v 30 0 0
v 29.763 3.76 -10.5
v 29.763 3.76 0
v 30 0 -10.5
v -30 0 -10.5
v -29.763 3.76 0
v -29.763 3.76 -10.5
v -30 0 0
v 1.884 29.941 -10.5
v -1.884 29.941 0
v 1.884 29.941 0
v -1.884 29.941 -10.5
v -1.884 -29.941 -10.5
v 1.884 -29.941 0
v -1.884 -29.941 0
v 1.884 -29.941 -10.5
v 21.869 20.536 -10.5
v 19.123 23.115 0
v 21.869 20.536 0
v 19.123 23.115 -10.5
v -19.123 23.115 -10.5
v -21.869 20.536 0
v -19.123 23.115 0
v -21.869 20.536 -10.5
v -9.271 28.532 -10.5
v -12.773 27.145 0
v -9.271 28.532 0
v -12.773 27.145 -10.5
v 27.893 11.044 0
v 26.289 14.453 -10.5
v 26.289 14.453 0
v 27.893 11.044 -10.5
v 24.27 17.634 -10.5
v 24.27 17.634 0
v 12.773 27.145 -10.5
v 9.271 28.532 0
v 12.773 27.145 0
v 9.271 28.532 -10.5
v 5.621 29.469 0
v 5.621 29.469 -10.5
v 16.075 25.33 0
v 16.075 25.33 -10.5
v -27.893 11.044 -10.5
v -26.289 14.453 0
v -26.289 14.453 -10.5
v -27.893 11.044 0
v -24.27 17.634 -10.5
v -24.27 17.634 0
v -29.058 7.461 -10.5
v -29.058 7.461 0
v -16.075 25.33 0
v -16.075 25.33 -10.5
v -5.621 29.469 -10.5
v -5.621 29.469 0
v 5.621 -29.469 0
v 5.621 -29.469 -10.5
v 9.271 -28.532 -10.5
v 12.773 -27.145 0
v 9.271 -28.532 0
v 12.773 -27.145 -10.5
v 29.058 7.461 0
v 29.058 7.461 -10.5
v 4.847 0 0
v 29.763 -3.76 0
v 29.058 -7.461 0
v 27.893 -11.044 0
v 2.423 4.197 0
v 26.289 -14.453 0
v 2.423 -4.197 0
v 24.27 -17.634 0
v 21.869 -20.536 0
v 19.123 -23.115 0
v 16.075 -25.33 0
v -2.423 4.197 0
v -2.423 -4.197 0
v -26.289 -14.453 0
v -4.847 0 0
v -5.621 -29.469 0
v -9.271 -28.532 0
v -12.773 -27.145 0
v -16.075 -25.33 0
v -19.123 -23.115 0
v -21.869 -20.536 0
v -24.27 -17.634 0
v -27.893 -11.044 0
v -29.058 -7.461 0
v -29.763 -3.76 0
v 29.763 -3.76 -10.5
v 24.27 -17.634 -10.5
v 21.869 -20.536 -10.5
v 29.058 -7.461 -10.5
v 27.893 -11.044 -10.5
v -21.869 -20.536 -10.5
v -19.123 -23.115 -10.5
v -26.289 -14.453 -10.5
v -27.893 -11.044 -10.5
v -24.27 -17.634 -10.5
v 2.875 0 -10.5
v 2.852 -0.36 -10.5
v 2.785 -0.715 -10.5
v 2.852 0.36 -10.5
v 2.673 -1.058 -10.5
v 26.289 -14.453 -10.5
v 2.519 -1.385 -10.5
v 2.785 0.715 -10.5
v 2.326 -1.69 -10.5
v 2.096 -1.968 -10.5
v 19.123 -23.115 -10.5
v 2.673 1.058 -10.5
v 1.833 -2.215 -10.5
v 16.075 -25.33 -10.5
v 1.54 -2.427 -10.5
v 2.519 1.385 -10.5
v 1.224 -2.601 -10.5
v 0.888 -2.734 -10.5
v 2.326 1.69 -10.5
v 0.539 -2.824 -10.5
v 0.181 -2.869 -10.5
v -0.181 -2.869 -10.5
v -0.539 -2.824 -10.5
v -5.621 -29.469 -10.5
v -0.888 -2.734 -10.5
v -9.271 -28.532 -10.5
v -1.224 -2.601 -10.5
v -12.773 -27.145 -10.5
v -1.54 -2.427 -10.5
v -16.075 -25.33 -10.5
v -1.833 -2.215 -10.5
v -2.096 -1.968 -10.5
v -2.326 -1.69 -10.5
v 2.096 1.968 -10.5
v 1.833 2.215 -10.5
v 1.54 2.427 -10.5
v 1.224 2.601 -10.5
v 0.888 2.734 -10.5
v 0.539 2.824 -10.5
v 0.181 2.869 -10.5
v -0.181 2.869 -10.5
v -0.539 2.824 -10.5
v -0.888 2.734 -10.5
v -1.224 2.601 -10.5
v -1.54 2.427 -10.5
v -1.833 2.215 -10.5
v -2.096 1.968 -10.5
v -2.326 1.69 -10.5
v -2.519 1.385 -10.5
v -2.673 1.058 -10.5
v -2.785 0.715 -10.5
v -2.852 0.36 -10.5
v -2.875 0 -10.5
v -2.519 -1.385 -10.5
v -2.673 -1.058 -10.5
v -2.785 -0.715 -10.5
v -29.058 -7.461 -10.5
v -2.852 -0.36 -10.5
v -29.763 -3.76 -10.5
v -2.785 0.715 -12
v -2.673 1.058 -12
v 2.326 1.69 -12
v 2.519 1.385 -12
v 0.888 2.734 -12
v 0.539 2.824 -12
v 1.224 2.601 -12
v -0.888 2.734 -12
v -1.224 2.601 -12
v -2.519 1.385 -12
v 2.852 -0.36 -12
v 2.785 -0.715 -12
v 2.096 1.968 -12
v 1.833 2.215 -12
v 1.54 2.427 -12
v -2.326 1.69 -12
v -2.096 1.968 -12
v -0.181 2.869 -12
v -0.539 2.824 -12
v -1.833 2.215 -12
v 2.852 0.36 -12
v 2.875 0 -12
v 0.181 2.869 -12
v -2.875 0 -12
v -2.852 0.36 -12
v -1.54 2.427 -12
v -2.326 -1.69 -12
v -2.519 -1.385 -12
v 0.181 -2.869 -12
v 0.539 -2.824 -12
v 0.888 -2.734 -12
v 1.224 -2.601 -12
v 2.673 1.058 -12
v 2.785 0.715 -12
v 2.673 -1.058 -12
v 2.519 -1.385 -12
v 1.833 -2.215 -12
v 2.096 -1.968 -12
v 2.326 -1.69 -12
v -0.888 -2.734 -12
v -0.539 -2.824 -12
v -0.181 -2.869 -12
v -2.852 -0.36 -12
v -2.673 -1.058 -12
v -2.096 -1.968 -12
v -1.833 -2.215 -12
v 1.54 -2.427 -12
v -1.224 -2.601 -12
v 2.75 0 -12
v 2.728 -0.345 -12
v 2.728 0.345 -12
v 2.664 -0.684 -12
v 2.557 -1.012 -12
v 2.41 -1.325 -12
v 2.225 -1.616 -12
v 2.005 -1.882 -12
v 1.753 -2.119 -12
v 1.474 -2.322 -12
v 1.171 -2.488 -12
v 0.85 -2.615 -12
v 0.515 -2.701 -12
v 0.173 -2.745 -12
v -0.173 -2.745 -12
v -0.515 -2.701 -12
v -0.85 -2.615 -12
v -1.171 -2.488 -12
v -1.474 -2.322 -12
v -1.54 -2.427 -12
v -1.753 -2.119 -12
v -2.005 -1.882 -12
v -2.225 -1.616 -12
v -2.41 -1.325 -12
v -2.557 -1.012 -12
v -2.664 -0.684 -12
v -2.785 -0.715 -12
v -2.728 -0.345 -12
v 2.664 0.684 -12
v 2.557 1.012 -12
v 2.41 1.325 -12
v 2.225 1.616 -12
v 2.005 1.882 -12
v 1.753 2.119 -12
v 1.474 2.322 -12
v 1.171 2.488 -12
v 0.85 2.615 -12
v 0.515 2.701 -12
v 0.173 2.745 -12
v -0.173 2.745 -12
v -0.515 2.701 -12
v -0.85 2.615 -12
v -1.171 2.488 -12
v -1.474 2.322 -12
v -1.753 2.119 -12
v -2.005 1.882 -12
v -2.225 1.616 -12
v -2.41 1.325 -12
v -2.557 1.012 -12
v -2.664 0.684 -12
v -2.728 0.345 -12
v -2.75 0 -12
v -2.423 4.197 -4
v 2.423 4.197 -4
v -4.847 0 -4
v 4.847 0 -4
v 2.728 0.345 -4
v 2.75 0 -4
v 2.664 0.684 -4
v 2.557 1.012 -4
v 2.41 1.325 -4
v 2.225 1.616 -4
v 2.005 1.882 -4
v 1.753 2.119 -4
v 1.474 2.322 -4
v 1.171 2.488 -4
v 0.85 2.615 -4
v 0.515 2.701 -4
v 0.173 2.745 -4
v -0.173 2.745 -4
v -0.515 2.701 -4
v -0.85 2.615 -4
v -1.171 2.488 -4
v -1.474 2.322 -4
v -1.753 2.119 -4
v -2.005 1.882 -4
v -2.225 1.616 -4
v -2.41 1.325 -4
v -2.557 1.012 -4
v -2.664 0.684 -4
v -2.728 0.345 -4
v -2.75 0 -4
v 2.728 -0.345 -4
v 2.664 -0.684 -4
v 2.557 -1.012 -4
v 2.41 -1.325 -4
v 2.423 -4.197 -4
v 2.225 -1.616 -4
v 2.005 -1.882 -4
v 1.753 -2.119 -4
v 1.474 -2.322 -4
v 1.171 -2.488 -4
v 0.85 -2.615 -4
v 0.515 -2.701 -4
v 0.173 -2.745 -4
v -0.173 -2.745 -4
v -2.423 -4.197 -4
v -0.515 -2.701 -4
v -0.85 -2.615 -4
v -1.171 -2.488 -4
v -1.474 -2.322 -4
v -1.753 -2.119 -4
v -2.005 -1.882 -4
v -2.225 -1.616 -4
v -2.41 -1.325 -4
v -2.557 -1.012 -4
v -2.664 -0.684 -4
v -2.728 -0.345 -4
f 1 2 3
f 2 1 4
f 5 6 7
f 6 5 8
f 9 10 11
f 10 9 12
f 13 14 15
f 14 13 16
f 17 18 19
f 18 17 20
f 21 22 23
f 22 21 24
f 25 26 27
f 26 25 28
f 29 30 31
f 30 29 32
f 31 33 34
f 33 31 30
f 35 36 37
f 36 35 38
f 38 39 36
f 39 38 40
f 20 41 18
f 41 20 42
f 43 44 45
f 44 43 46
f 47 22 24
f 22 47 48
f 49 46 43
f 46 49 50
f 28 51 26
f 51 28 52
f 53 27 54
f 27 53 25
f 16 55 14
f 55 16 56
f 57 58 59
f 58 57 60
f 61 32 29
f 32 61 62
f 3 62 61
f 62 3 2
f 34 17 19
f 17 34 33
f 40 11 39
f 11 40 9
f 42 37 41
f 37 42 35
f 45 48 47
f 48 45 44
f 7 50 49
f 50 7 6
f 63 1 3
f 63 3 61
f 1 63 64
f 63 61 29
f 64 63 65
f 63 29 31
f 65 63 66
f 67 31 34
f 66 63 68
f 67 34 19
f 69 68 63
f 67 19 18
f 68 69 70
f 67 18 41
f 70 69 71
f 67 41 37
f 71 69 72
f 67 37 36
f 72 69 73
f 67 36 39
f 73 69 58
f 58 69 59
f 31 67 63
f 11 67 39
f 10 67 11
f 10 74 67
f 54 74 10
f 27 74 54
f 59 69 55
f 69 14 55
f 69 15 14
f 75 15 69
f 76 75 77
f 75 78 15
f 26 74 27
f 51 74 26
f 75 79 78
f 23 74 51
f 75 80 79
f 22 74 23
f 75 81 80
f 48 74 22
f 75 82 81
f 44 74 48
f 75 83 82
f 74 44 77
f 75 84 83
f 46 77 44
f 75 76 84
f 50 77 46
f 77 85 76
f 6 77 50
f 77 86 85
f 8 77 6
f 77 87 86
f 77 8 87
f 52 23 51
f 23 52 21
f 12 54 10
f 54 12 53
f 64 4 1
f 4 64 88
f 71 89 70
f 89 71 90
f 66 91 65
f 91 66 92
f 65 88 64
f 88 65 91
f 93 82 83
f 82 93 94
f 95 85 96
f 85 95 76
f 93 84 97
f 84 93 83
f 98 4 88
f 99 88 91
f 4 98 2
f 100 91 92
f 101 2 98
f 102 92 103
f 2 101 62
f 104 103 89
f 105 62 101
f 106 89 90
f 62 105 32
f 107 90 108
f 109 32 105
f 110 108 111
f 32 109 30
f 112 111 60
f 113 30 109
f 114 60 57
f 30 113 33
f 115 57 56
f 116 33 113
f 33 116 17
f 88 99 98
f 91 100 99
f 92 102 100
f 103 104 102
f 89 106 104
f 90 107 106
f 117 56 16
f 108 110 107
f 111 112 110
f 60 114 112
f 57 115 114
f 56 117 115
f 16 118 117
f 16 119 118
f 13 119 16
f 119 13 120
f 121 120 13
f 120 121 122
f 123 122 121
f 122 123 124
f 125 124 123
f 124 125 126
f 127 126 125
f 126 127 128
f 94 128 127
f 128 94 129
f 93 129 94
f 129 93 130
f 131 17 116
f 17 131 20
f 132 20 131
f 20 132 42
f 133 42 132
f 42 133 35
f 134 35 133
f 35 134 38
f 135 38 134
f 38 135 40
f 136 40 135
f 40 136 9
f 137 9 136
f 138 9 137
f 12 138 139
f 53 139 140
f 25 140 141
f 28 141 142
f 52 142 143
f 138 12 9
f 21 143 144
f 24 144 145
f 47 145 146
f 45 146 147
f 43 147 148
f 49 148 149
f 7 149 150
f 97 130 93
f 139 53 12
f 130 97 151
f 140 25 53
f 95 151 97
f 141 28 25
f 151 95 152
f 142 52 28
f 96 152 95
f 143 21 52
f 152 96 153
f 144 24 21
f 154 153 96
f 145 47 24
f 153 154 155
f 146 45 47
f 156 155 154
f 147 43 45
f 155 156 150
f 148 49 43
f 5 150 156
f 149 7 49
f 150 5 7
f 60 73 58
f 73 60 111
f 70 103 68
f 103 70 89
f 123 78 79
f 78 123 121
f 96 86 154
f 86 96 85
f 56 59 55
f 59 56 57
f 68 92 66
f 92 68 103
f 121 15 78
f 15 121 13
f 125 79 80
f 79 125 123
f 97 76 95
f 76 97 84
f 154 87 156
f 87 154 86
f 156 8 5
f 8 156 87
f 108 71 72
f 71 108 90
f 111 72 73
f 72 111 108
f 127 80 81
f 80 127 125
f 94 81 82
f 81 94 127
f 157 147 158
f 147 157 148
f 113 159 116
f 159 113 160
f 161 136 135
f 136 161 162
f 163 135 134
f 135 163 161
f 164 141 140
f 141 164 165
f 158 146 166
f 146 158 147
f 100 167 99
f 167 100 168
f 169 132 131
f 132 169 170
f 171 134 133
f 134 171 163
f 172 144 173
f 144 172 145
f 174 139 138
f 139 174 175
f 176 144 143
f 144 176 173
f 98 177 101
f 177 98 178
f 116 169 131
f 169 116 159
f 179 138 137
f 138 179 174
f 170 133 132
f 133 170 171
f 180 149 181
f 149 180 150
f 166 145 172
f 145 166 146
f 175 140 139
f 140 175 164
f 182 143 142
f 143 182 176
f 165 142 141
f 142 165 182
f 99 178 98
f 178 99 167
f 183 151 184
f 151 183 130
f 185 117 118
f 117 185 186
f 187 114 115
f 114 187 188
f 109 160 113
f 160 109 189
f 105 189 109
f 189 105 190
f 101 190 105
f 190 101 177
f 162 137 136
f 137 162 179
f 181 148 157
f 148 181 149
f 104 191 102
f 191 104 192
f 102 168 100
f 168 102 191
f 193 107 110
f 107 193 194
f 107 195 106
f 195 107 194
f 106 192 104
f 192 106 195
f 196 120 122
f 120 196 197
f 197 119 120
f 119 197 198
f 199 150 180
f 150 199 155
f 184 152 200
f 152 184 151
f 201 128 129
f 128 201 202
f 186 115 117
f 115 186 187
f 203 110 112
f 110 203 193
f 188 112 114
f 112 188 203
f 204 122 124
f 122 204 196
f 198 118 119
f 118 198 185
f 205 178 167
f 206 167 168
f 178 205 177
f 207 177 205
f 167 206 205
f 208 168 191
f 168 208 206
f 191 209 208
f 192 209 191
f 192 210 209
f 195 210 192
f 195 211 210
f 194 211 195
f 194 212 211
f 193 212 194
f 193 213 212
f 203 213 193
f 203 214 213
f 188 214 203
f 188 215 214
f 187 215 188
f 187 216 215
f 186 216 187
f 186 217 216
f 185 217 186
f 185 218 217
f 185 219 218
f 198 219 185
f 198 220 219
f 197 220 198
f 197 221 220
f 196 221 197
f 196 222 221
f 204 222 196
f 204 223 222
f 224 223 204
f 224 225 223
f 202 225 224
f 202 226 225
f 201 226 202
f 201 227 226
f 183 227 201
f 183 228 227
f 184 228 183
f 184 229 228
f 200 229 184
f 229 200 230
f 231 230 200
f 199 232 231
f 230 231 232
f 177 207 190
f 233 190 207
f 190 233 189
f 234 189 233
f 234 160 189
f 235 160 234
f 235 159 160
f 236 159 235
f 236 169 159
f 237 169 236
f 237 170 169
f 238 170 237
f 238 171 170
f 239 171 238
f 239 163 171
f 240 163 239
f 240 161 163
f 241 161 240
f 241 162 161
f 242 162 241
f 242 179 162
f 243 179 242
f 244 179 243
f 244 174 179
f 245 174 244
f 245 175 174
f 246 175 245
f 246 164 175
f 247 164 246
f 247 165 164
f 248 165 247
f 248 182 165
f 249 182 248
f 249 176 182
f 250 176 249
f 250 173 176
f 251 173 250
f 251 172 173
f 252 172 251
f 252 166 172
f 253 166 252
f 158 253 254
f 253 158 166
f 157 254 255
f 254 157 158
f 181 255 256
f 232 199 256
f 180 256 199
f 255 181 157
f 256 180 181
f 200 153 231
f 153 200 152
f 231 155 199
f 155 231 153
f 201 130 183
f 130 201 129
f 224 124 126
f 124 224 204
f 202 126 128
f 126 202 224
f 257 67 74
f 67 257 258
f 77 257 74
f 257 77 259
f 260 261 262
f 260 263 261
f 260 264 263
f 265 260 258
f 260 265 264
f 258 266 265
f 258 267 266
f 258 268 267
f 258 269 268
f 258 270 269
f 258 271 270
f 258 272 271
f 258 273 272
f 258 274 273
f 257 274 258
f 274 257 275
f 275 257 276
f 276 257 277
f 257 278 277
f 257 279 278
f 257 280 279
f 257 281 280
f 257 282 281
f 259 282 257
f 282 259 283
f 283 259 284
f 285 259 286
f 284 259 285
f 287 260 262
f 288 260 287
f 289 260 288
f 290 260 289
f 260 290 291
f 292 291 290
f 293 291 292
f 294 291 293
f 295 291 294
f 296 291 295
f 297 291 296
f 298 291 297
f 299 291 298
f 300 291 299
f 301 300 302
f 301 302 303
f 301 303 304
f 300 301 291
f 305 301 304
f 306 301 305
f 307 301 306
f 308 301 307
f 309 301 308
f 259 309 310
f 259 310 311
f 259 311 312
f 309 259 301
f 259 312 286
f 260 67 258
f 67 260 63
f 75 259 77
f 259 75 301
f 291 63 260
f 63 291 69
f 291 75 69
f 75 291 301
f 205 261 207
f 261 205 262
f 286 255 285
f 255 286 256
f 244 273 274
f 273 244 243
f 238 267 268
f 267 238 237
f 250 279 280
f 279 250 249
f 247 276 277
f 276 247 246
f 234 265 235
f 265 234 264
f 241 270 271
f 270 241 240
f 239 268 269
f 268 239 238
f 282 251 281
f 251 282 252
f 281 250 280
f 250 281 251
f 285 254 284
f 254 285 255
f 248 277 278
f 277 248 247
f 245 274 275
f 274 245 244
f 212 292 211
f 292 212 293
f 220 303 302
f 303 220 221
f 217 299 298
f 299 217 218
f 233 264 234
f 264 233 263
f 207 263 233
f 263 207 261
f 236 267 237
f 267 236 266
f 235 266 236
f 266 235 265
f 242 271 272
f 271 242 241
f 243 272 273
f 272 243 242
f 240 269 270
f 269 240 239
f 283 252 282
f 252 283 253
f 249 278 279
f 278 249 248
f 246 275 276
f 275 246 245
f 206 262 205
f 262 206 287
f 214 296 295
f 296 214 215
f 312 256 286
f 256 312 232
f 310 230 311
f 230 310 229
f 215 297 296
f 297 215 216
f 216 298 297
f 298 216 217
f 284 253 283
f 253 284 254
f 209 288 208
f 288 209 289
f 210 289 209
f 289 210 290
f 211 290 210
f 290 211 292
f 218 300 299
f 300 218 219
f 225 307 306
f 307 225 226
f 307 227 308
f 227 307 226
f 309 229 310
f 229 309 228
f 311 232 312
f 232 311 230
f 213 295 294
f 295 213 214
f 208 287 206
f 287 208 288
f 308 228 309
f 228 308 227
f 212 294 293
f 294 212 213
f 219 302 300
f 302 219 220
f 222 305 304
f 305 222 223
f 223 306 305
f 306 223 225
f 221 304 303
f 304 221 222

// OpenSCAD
$fn = 50;


difference() {
	union() {
		translate(v = [0, 0, -10.5000000000]) {
			cylinder(h = 10.5000000000, r = 30.0000000000);
		}
		translate(v = [0, 0, -12.0000000000]) {
			cylinder(h = 12, r = 2.8750000000);
		}
	}
	union() {
		translate(v = [0, 0, 0]) {
			rotate(a = [0, 0, 0]) {
				difference() {
					union() {
						translate(v = [0, 0, -4]) {
							linear_extrude(height = 4) {
								polygon(points = [[4.8468000000, 0.0000000000], [2.4234000000, 4.1974519271], [-2.4234000000, 4.1974519271], [-4.8468000000, 0.0000000000], [-2.4234000000, -4.1974519271], [2.4234000000, -4.1974519271]]);
							}
						}
					}
					union();
				}
			}
		}
		#translate(v = [0, 0, -100.0000000000]) {
			cylinder(h = 200, r = 2.7500000000);
		}
	}
}
